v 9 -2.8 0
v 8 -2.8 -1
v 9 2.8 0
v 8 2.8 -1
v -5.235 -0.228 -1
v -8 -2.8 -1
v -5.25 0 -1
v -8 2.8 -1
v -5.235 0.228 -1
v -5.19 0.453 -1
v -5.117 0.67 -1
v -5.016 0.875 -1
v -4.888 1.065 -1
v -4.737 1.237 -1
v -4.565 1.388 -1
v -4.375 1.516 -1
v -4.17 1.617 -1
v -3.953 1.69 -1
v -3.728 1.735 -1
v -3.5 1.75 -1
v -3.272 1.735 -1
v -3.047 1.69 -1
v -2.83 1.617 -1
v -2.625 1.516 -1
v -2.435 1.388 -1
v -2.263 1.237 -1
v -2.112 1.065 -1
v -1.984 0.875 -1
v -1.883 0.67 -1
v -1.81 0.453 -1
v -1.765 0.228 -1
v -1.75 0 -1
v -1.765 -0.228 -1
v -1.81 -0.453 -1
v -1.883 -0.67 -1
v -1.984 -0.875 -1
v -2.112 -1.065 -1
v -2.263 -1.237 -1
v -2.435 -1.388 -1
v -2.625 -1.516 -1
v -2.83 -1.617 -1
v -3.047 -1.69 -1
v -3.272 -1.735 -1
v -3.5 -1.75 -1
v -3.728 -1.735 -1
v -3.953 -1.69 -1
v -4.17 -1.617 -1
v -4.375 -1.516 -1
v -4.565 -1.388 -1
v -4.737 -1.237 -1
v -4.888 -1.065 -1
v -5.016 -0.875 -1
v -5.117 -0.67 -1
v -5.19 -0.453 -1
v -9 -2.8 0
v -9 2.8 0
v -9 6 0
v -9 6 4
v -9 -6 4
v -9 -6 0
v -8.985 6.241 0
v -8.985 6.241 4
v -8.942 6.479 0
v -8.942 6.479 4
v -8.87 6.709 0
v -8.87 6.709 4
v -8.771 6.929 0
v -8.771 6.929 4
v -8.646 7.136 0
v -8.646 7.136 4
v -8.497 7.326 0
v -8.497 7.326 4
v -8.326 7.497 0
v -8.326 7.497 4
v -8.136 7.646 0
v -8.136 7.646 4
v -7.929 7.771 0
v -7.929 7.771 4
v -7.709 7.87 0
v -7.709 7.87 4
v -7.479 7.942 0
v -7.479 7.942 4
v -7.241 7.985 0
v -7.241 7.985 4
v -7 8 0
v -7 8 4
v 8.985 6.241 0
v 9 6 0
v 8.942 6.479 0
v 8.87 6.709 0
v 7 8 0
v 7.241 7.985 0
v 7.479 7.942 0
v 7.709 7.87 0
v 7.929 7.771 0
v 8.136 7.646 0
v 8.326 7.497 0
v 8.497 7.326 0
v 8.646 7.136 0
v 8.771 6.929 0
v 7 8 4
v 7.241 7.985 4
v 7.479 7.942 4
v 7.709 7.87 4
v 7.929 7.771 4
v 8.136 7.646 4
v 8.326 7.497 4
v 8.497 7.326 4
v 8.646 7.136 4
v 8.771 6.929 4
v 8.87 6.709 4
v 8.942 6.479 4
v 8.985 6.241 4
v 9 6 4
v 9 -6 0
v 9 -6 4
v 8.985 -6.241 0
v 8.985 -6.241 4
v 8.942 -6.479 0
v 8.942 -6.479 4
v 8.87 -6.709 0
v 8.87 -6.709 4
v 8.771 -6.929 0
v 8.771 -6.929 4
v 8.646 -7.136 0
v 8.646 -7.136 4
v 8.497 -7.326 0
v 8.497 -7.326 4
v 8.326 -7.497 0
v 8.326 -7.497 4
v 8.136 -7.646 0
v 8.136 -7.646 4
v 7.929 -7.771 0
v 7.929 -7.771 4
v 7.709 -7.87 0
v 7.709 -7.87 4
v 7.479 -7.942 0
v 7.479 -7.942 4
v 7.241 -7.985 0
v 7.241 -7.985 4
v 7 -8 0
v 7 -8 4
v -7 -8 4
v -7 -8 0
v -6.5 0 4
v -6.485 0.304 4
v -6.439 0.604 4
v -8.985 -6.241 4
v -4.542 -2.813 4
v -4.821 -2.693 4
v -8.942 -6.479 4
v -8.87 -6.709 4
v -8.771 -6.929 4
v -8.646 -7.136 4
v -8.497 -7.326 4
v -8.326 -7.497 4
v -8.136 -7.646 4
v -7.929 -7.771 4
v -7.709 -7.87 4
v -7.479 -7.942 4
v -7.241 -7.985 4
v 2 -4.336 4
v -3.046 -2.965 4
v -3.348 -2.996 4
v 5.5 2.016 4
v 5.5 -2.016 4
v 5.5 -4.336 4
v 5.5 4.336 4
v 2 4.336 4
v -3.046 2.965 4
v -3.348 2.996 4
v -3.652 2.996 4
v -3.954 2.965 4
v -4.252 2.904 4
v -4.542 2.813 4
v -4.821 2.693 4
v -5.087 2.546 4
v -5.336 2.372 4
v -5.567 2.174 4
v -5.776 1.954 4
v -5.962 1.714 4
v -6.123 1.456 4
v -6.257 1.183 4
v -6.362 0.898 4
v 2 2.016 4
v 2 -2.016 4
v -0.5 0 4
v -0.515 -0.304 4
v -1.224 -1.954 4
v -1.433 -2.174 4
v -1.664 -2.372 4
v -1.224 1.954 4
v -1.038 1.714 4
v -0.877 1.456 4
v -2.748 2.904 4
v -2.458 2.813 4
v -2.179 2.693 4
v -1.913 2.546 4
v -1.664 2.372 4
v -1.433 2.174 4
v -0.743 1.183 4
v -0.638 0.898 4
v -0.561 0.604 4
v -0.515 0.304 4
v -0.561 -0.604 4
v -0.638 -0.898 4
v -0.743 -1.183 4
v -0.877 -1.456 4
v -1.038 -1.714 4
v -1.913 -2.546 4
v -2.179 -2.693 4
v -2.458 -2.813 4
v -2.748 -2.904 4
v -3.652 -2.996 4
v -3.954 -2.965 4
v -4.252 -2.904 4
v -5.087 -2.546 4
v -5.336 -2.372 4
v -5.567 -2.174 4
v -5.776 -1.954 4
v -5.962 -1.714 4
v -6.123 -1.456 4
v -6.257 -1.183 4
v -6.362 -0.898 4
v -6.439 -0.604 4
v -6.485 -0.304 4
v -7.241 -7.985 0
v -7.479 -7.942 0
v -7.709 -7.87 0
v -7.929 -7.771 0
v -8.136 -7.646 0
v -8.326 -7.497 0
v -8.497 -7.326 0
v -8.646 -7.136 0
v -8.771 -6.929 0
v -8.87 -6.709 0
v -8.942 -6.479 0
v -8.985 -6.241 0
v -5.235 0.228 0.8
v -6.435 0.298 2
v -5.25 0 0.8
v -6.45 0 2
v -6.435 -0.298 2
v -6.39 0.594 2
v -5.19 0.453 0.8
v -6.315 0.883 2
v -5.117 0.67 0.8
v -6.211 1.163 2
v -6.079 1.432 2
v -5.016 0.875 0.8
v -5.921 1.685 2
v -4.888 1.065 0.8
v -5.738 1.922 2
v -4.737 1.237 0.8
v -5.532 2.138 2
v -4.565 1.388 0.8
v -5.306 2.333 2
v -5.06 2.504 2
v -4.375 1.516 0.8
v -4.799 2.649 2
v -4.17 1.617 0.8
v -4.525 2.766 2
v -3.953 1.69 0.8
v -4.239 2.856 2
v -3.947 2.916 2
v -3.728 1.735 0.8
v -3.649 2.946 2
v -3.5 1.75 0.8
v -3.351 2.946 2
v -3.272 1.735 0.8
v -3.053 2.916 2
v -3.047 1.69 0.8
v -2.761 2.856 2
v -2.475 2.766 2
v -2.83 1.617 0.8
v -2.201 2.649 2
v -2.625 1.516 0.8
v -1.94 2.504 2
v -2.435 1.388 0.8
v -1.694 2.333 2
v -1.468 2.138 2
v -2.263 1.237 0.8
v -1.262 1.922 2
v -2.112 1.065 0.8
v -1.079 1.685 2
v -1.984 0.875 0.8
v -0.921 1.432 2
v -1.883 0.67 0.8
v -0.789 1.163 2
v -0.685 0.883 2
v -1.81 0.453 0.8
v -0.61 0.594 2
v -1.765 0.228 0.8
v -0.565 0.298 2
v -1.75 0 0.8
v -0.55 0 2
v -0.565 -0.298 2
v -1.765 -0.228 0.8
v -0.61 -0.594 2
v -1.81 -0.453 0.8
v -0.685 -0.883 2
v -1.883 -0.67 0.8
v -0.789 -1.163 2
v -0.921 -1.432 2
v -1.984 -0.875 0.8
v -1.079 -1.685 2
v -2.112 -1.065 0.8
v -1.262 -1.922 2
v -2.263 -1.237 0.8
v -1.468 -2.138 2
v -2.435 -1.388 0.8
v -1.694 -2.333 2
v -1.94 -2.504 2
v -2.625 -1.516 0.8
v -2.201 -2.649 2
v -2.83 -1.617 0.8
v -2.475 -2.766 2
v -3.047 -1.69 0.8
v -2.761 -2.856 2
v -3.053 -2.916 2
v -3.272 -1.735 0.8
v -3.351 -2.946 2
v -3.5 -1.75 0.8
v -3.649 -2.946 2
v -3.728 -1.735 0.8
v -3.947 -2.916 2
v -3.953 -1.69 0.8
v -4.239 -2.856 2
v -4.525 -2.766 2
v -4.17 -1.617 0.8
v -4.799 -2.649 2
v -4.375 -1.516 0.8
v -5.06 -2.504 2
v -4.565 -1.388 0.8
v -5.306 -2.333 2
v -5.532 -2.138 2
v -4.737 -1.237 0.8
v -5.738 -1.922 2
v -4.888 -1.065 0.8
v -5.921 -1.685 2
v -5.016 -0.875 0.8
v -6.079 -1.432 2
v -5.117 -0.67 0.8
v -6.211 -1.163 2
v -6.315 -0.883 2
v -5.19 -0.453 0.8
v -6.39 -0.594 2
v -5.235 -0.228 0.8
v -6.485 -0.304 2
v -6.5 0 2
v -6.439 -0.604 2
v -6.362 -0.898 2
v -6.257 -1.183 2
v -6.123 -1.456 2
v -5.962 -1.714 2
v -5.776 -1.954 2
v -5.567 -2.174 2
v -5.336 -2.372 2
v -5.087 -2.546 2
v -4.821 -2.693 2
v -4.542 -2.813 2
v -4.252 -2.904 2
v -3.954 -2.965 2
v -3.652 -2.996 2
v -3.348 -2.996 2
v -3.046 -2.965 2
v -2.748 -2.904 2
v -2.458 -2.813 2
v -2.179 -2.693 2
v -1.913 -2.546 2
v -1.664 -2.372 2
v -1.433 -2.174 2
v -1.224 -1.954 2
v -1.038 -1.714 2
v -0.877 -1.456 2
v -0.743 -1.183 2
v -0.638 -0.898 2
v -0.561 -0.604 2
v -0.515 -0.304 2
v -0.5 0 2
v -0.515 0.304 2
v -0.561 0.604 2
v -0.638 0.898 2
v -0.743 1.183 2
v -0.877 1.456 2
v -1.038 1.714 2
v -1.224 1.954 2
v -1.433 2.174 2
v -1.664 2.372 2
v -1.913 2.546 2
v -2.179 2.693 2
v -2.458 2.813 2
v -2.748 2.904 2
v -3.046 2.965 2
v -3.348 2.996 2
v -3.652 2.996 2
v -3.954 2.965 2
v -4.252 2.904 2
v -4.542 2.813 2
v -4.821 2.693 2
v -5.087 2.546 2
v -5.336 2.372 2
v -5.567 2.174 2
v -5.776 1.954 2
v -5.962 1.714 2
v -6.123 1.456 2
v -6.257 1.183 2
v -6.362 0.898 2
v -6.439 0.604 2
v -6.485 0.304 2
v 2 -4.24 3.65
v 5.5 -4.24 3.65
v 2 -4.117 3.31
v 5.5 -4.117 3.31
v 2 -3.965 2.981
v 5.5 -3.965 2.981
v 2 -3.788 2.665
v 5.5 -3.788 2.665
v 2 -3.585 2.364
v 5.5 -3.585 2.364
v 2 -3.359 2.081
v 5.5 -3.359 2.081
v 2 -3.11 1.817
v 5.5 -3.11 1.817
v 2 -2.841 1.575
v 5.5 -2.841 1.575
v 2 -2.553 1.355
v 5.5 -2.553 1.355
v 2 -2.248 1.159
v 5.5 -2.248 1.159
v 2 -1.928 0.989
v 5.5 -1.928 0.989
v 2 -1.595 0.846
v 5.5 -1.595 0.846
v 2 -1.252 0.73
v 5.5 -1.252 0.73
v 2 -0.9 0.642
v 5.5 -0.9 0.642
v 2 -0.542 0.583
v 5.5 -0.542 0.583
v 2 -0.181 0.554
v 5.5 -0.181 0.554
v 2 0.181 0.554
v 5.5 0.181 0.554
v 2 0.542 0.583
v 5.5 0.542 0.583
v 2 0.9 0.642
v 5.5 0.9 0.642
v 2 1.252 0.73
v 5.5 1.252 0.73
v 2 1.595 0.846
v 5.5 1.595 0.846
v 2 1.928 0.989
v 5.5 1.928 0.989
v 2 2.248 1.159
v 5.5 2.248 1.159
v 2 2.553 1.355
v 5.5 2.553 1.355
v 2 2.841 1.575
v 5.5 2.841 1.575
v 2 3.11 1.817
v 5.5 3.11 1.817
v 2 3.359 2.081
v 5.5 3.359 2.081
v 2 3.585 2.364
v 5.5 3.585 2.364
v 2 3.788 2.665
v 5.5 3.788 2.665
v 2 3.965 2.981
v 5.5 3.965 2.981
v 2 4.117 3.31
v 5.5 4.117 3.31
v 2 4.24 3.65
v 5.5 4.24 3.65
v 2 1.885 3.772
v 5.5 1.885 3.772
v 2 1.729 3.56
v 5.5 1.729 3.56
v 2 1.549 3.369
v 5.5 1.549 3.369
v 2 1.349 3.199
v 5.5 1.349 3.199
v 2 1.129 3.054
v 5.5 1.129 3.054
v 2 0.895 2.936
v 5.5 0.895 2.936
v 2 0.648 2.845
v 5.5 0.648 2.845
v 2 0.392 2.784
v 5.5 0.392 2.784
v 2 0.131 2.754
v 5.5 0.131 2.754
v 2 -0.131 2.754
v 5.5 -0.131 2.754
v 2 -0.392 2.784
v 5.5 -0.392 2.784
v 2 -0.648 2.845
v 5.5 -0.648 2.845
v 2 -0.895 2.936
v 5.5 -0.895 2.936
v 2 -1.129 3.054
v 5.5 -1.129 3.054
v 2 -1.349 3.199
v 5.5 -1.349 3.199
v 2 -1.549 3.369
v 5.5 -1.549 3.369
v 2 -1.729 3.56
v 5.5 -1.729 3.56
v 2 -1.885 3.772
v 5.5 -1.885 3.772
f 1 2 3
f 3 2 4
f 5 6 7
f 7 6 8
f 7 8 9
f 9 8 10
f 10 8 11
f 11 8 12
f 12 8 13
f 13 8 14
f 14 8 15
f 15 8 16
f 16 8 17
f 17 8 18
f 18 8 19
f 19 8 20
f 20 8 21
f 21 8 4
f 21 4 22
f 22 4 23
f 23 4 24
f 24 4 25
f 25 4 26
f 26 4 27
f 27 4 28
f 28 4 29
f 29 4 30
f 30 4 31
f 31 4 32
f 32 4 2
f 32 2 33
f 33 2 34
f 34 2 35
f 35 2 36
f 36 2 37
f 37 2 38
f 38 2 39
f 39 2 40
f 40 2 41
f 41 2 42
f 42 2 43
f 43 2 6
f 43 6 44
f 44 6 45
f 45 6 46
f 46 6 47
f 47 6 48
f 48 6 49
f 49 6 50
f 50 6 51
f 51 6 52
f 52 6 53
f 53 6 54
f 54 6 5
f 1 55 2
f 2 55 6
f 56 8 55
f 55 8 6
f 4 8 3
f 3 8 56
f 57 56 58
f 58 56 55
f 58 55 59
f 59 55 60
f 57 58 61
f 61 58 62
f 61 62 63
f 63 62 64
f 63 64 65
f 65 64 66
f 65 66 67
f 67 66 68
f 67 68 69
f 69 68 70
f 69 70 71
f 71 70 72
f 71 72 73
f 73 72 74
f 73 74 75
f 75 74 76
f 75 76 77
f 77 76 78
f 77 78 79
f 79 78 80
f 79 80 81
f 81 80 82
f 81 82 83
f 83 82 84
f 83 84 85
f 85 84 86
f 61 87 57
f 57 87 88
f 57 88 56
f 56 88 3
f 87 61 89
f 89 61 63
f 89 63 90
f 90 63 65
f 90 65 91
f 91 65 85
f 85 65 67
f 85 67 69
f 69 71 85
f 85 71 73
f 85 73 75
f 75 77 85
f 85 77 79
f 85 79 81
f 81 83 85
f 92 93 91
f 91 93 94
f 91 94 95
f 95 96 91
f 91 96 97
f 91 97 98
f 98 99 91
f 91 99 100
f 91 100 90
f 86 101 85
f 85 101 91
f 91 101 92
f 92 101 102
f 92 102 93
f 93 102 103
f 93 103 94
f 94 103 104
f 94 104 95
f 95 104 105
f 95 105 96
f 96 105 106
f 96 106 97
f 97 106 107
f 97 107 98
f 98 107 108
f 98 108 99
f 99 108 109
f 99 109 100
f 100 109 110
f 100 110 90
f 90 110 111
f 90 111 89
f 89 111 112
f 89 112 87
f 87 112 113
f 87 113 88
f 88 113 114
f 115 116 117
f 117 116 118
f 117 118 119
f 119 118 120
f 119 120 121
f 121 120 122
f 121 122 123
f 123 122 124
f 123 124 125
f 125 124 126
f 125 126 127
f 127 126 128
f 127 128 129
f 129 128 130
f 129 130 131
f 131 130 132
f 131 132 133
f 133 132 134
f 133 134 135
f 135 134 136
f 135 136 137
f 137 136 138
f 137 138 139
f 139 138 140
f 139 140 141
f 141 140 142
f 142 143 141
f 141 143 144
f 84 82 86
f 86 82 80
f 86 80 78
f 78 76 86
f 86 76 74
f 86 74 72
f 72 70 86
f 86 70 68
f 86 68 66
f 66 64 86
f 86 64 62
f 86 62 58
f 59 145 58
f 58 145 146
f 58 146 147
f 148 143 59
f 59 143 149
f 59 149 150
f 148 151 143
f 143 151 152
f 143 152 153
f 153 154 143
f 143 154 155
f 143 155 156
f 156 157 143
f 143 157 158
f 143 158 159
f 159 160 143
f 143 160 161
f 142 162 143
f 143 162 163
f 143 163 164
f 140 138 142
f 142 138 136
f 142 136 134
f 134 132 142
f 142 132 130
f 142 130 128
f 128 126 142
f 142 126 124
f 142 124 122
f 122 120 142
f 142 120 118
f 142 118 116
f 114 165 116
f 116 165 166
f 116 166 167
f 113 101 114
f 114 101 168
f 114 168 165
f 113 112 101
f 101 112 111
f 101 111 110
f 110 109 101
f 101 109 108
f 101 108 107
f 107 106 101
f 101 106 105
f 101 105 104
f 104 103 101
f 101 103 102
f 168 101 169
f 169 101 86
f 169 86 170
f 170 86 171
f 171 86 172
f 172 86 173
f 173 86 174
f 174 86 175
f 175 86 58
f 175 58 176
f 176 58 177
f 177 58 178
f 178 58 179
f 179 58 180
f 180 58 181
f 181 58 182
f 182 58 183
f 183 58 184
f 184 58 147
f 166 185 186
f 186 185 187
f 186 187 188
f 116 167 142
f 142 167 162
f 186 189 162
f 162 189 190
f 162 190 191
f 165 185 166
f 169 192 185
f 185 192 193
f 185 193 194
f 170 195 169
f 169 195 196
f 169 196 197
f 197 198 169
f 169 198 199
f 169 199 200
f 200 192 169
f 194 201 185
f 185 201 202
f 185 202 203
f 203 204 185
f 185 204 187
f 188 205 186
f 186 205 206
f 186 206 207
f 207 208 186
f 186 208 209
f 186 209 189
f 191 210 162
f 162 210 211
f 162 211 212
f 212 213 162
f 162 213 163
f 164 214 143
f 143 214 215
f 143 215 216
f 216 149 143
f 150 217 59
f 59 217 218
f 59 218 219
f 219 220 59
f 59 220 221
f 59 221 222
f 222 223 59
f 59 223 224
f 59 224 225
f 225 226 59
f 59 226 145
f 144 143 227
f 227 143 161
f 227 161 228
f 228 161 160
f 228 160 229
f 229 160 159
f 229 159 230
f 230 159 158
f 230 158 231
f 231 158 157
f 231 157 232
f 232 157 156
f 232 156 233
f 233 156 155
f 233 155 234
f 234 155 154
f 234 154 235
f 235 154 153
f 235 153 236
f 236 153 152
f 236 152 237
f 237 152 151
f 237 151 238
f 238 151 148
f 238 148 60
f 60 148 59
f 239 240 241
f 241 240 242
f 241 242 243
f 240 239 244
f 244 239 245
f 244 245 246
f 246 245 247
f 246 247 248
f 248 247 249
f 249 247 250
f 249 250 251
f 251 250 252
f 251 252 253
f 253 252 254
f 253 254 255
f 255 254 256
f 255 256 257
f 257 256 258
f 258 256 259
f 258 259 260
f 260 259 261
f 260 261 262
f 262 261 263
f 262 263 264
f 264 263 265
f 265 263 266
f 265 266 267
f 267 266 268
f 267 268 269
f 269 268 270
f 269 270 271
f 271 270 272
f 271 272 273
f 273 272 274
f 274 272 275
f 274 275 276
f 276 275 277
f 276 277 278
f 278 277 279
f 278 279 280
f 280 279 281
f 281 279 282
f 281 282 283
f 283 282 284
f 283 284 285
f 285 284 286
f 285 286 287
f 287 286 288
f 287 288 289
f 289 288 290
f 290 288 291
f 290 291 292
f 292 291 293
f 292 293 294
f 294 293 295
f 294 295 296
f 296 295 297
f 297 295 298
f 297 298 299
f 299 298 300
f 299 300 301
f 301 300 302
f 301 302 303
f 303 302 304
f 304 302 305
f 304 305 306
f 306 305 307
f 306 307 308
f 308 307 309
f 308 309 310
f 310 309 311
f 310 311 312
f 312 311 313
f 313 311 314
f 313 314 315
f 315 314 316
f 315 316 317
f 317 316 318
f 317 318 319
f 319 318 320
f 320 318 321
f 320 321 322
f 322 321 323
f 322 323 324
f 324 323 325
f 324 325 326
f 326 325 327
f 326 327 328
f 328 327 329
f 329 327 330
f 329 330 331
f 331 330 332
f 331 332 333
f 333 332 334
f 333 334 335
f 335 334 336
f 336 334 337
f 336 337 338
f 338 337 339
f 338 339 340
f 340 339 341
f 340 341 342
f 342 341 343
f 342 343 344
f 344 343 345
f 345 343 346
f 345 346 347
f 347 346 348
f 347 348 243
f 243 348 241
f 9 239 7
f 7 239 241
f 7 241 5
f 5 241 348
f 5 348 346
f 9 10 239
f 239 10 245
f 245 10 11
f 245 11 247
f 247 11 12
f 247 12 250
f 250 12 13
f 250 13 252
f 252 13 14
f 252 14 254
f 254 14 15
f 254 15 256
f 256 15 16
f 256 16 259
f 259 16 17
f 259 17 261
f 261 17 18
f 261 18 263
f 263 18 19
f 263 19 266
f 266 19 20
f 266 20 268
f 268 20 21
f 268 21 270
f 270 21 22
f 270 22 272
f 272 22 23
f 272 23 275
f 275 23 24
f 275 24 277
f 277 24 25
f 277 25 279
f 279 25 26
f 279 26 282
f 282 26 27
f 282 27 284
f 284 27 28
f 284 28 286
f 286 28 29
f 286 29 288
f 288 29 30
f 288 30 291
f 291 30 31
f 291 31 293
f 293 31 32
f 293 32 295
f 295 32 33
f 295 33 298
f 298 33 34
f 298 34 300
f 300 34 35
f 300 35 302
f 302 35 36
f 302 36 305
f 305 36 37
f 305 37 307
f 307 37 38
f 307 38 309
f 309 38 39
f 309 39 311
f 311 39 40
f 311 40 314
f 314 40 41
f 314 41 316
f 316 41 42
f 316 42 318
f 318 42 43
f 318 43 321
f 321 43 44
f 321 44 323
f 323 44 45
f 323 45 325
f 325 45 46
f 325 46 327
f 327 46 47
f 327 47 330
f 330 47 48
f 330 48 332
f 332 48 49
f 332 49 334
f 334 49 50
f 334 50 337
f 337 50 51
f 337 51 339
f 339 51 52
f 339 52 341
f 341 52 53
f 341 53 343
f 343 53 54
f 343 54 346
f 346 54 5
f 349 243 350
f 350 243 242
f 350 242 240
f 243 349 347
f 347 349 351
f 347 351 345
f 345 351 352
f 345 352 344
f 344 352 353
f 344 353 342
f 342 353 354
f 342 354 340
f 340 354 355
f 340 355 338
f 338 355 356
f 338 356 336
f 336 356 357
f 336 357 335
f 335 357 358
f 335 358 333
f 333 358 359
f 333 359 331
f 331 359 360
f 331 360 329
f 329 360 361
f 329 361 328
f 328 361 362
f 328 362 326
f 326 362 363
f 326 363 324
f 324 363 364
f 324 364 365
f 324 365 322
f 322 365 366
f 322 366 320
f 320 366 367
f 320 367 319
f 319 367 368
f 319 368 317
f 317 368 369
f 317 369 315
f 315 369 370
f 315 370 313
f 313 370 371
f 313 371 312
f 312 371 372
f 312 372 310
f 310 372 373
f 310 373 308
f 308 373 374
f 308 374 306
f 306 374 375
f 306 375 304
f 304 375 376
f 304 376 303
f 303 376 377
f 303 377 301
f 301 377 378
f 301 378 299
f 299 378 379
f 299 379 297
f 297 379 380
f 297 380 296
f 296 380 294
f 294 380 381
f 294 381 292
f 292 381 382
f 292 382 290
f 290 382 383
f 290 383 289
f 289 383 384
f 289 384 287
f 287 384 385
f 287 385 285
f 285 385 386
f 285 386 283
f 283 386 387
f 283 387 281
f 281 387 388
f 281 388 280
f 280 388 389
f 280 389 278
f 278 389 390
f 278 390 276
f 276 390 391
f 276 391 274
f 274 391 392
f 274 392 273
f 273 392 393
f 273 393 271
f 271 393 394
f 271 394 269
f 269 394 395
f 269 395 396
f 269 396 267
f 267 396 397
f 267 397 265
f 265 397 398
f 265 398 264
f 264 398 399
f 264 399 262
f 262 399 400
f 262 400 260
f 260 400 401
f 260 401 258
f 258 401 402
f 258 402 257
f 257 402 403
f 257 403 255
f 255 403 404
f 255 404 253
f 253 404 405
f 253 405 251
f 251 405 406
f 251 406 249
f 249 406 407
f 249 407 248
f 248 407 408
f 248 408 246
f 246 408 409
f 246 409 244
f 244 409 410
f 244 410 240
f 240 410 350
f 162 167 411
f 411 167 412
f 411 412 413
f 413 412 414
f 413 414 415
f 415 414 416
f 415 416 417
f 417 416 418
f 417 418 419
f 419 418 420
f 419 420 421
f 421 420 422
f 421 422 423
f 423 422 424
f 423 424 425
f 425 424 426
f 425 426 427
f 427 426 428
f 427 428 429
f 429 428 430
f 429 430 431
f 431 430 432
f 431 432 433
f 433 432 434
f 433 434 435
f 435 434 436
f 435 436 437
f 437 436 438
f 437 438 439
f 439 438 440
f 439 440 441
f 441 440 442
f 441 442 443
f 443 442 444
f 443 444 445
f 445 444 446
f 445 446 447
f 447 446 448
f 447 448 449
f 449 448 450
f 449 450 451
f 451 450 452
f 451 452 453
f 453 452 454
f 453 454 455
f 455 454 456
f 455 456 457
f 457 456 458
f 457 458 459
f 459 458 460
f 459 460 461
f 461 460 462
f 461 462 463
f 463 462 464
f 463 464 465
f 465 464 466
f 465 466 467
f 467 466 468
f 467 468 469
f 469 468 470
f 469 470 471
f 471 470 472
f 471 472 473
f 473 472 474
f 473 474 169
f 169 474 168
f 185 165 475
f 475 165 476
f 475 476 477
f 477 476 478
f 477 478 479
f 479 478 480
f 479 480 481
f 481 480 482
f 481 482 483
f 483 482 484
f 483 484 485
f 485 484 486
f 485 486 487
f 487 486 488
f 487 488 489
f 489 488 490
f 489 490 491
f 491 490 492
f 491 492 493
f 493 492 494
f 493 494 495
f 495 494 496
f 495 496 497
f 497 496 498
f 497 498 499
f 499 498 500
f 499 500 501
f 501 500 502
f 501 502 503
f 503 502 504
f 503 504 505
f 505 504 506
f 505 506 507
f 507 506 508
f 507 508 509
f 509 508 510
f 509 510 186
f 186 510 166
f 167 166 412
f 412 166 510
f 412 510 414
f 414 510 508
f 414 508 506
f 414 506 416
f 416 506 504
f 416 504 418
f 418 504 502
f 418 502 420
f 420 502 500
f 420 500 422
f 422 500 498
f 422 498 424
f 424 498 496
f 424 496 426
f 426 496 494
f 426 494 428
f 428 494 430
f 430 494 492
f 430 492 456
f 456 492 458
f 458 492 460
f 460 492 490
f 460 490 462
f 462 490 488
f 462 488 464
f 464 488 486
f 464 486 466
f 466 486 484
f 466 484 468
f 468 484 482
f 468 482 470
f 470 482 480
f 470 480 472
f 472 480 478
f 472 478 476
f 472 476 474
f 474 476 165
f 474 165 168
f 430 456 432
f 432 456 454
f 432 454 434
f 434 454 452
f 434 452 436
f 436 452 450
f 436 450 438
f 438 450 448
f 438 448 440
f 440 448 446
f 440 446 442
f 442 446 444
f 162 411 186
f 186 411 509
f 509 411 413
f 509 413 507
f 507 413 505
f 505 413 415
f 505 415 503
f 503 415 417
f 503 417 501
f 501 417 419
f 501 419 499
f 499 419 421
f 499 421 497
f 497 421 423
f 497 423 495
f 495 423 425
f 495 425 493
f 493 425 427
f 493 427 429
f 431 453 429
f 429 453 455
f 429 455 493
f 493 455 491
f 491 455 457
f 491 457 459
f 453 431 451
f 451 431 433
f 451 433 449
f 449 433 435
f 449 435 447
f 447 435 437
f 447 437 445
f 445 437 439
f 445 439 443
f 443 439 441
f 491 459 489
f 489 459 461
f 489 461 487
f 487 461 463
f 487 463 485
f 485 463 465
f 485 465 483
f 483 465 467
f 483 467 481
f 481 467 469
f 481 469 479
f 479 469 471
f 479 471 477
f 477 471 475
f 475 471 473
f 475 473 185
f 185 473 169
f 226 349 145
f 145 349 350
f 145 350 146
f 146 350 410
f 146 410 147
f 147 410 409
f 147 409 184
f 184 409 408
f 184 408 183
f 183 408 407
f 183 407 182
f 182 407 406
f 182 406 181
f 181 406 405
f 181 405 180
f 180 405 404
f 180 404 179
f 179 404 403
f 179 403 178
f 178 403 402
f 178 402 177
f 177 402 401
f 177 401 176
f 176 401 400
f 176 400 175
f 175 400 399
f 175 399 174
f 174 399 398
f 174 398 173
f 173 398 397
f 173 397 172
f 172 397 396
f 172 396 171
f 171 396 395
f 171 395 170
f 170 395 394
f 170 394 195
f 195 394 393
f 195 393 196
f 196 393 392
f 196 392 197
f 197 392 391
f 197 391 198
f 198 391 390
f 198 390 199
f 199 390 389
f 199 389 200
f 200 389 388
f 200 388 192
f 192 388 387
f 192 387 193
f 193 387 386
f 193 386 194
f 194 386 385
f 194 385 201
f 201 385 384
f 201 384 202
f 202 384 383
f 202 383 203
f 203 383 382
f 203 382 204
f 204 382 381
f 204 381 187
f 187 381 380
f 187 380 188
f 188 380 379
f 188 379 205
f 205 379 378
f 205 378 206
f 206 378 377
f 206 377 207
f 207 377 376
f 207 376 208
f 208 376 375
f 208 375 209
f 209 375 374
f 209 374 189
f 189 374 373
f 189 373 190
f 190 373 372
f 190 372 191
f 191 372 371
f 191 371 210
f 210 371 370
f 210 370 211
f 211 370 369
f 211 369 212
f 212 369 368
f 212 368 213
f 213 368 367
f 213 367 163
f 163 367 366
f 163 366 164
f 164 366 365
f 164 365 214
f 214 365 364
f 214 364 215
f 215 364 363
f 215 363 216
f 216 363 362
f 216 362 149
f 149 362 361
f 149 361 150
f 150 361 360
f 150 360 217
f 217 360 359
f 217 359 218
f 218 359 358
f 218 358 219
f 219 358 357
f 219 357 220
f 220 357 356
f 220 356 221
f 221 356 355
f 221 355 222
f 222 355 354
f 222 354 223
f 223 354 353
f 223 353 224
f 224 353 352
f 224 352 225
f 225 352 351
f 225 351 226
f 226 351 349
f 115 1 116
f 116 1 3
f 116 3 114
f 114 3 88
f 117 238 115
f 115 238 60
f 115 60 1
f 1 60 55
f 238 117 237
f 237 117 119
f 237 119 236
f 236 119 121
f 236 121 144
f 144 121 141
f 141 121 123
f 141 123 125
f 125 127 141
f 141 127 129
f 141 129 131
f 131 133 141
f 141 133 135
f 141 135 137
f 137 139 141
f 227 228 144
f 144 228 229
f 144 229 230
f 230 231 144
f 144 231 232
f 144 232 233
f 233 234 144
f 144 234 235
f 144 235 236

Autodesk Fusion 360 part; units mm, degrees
sketch "Sketch1" plane through (0, 0, 0) normal (0, 0, 1) x (1, 0, 0)
  line L0 (9, 8) -> (-9, 8)
  line L1 (-9, 8) -> (-9, -8)
  line L2 (-9, -8) -> (9, -8)
  line L3 (9, -8) -> (9, 8)
  circle A0 centre (-3.5, 0) radius 1.75
  circle A1 centre (-3.5, 0) radius 3
  line L4 (9, -2.8) -> (-9, -2.8)
  line L5 (-9, -2.8) -> (-9, 2.8)
  line L6 (-9, 2.8) -> (9, 2.8)
  line L7 (9, 2.8) -> (9, -2.8)
  line L8 (9, -2.8) -> (-9, 2.8) construction
  line L9 (-9, -2.8) -> (9, 2.8) construction
  dimension "d1" = 18
  dimension "d2" = 16
  dimension "d5" = 3.5
  dimension "d6" = 6
  dimension "d9" = 5.6
  dimension "d12" = 3.5
  dimension "d23" = 8
extrude "Extrude1" add sketch "Sketch1" along normal blind 2
extrude "Extrude2" add sketch "Sketch1" along normal blind 4 contours L0 L1 L3 A1 L6 | L3 A1 L4 L6 L7 | L1 A1 L4 L5 L6 | L1 L2 L3 A1 L4
extrude "Extrude3" add sketch "Sketch1" against normal blind 1 contours L3 A1 L4 L6 L7 | L1 A1 L4 L5 L6 | A1 L4 L6
sketch "Sketch2" plane through (9, 0, 0) normal (1, 0, 0) x (0, 1, 0)
  line L0 (-8, 0) -> (-2.8, 0)
  line L1 (-2.8, 0) -> (-2.8, -1)
  line L2 (-2.8, -1) -> (2.8, -1)
  line L3 (2.8, -1) -> (2.8, 0)
  line L4 (2.8, 0) -> (8, 0)
  line L5 (8, 0) -> (8, 4)
  line L6 (8, 4) -> (-8, 4)
  line L7 (-8, 4) -> (-8, 0)
  circle A0 centre (0, 5) radius 2.25
  circle A1 centre (0, 5) radius 4.45
  line L8 (-8, 0) -> (8, 0)
  line L9 (0, 4) -> (0, 5) construction
  dimension "d13" = 4.5
  dimension "d14" = 2.2
  dimension "d18" = 5
extrude "Extrude4" cut sketch "Sketch2" against normal blind 3.5 from surface at -3.5 contours L6 A0 A1 picked at (-0.2762, 1.3019)
chamfer "Chamfer1" distance 1.2 angle 45 1 edges at (-5.1316, 0.6328, 2)
fillet "Fillet1" radius 2 4 edges at (-9, -8, 2) (9, -8, 2) (9, 8, 2) (-9, 8, 2)
chamfer "Chamfer2" distance 1 angle 45 2 edges at (-9, 0, -1) (9, 0, -1)
equation "d23 = d2 / 2"
